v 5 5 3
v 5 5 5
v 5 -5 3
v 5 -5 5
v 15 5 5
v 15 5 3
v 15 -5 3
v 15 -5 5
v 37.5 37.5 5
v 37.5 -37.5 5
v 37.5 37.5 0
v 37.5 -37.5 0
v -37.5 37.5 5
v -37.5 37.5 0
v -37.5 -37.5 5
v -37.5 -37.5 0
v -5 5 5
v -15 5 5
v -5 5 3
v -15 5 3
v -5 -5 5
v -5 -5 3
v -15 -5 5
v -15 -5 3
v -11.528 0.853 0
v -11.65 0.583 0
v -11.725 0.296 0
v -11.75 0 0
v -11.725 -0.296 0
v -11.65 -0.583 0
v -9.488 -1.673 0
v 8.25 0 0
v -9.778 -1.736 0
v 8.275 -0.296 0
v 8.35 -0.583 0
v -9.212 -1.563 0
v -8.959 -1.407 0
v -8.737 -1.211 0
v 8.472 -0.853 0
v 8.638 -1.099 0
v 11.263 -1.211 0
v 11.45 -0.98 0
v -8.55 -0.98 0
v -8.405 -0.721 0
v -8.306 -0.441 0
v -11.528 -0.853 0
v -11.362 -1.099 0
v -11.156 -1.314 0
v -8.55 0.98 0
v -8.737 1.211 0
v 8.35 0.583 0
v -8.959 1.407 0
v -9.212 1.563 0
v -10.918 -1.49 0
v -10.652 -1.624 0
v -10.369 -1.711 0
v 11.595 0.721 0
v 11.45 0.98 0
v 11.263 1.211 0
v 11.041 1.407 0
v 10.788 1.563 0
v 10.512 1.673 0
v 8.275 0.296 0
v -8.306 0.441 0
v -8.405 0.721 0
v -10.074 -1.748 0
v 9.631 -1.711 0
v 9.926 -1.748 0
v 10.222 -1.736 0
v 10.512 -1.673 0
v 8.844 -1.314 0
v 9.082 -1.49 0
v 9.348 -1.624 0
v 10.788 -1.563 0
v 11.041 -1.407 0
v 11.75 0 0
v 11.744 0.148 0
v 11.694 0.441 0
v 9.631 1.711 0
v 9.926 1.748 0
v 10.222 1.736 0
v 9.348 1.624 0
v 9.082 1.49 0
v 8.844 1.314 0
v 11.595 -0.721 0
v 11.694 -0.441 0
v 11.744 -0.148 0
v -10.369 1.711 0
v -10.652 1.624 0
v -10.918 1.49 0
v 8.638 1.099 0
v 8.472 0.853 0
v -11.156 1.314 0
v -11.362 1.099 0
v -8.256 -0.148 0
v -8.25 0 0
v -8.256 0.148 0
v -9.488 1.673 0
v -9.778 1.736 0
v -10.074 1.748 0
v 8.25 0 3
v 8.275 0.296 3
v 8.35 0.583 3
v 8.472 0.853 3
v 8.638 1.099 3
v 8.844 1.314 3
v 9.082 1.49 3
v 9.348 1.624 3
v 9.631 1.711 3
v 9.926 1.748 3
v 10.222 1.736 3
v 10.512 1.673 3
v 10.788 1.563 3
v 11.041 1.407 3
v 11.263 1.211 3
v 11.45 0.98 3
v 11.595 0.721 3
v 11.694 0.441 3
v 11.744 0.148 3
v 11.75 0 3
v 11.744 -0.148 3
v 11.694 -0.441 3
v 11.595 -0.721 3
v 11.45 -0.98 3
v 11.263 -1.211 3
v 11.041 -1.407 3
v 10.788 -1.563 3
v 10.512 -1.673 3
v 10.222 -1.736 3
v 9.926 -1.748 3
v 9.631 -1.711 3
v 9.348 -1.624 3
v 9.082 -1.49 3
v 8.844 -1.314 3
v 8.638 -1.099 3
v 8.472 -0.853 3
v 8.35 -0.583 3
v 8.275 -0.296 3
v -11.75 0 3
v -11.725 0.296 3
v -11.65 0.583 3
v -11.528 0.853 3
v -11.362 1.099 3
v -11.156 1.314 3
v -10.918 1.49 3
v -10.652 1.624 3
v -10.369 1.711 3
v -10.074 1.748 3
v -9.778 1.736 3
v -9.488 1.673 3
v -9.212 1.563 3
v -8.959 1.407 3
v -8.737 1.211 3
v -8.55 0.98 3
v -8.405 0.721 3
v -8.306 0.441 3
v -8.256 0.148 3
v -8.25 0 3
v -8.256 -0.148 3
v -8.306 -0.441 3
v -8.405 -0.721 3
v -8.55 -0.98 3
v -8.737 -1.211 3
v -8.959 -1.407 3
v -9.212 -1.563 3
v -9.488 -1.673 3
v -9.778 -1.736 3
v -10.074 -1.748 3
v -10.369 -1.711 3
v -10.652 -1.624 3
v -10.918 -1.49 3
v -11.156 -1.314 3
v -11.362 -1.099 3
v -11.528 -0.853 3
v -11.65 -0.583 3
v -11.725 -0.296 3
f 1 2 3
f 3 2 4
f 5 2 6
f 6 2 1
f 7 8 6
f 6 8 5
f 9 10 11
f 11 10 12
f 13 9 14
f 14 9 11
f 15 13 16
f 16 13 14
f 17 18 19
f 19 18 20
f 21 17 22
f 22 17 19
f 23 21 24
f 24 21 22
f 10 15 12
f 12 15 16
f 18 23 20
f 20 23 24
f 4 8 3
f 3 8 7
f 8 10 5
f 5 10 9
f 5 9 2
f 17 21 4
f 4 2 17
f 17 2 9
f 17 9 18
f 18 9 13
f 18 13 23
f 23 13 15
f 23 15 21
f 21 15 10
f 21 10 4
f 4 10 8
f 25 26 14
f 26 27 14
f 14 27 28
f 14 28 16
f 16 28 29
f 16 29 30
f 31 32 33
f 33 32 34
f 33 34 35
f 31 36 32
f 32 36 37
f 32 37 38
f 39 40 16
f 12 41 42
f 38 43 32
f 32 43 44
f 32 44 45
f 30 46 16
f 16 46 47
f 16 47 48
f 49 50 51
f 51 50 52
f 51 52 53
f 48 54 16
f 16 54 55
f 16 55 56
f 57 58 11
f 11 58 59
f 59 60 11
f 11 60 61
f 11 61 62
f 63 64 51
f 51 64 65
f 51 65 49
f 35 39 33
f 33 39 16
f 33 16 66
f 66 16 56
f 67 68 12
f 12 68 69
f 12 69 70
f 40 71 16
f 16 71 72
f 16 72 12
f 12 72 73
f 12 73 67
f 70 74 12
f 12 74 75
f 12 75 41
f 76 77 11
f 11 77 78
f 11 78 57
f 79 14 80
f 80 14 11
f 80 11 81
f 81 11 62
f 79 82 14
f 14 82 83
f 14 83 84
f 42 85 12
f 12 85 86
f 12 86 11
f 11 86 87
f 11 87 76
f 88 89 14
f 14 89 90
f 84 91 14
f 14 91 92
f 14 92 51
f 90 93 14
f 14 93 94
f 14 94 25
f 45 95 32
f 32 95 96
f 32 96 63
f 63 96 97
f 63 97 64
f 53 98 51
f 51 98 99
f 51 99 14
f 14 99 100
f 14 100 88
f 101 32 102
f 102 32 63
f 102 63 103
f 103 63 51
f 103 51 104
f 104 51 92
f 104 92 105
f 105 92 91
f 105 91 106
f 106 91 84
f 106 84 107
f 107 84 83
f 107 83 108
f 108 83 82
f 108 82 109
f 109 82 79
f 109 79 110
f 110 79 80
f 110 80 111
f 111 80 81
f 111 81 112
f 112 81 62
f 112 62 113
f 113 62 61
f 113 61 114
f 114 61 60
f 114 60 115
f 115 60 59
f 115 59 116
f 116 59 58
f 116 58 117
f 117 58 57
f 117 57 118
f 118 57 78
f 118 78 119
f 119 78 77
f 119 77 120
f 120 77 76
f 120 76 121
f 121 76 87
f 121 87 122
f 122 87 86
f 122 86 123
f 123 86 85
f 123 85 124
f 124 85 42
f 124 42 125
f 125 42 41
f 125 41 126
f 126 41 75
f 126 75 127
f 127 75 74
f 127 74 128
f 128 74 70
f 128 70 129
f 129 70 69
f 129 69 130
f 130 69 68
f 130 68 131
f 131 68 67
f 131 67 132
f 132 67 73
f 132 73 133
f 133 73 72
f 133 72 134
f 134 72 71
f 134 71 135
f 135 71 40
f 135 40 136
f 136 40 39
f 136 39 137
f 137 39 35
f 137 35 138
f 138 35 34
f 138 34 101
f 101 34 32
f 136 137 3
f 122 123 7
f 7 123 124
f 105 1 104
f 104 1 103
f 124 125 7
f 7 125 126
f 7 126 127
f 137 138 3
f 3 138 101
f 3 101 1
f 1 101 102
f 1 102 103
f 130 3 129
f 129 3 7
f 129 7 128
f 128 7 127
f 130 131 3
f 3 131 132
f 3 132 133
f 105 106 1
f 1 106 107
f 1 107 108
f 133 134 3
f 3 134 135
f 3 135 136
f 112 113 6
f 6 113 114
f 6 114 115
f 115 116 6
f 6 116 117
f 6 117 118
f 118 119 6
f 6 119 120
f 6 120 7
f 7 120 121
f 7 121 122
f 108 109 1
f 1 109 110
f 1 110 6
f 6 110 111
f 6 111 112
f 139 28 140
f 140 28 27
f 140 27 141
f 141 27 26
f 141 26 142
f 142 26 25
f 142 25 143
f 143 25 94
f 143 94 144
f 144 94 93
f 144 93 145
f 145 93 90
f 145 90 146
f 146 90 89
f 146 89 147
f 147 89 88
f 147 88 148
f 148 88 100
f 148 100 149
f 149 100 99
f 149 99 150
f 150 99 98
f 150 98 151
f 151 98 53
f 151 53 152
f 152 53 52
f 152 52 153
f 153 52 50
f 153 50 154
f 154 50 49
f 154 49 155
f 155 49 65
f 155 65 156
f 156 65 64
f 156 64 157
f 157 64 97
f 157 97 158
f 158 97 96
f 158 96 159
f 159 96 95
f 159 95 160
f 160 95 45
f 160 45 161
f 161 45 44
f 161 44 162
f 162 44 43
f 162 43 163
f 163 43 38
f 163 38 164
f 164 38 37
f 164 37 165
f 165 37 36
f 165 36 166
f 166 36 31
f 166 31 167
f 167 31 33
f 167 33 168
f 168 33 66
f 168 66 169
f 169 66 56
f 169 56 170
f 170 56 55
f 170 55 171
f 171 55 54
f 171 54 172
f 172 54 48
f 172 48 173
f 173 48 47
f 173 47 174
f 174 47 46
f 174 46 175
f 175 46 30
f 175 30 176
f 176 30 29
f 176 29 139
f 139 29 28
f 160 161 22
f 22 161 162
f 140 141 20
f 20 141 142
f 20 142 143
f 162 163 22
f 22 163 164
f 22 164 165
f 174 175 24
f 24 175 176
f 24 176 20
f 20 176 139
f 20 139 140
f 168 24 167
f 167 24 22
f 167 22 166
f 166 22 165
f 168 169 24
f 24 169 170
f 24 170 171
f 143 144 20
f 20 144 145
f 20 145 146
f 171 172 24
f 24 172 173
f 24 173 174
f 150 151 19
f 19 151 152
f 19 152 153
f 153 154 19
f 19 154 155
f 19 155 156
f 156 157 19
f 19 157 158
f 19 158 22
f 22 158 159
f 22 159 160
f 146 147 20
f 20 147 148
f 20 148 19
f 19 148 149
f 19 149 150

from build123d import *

# Parameters (mm, degrees)
SKETCH_1_W      = 75
SKETCH_1_H      = 75
SKETCH_1_W_2    = 10
SKETCH_1_H_2    = 10
EXTRUDE_1_DEPTH = 5
SKETCH_1_8_W    = 10
SKETCH_1_8_H    = 10
SKETCH_1_8_R    = 1.75
EXTRUDE_2_DEPTH = 3


with BuildPart() as part:
    # 草图1 → 凸台-拉伸1 (new body)
    with BuildSketch(Plane.XY):
        Rectangle(SKETCH_1_W, SKETCH_1_H)
        with Locations((-10, 0)):
            Rectangle(SKETCH_1_W_2, SKETCH_1_H_2, mode=Mode.SUBTRACT)
        with Locations((10, 0)):
            Rectangle(SKETCH_1_W_2, SKETCH_1_H_2, mode=Mode.SUBTRACT)
    extrude(amount=EXTRUDE_1_DEPTH)

    # 草图1<8> → 凸台-拉伸2 (add)
    # profile 1 of 2: a face of its own
    with BuildSketch(Plane.XY):
        with Locations((-10, 0)):
            Rectangle(SKETCH_1_8_W, SKETCH_1_8_H)
        with Locations((-10, 0)):
            Circle(SKETCH_1_8_R, mode=Mode.SUBTRACT)
    # profile 2 of 2: a face of its own
    with BuildSketch(Plane.XY):
        with Locations((10, 0)):
            Rectangle(SKETCH_1_8_W, SKETCH_1_8_H)
        with Locations((10, 0)):
            Circle(SKETCH_1_8_R, mode=Mode.SUBTRACT)
    extrude(amount=EXTRUDE_2_DEPTH)


solid = part.part
